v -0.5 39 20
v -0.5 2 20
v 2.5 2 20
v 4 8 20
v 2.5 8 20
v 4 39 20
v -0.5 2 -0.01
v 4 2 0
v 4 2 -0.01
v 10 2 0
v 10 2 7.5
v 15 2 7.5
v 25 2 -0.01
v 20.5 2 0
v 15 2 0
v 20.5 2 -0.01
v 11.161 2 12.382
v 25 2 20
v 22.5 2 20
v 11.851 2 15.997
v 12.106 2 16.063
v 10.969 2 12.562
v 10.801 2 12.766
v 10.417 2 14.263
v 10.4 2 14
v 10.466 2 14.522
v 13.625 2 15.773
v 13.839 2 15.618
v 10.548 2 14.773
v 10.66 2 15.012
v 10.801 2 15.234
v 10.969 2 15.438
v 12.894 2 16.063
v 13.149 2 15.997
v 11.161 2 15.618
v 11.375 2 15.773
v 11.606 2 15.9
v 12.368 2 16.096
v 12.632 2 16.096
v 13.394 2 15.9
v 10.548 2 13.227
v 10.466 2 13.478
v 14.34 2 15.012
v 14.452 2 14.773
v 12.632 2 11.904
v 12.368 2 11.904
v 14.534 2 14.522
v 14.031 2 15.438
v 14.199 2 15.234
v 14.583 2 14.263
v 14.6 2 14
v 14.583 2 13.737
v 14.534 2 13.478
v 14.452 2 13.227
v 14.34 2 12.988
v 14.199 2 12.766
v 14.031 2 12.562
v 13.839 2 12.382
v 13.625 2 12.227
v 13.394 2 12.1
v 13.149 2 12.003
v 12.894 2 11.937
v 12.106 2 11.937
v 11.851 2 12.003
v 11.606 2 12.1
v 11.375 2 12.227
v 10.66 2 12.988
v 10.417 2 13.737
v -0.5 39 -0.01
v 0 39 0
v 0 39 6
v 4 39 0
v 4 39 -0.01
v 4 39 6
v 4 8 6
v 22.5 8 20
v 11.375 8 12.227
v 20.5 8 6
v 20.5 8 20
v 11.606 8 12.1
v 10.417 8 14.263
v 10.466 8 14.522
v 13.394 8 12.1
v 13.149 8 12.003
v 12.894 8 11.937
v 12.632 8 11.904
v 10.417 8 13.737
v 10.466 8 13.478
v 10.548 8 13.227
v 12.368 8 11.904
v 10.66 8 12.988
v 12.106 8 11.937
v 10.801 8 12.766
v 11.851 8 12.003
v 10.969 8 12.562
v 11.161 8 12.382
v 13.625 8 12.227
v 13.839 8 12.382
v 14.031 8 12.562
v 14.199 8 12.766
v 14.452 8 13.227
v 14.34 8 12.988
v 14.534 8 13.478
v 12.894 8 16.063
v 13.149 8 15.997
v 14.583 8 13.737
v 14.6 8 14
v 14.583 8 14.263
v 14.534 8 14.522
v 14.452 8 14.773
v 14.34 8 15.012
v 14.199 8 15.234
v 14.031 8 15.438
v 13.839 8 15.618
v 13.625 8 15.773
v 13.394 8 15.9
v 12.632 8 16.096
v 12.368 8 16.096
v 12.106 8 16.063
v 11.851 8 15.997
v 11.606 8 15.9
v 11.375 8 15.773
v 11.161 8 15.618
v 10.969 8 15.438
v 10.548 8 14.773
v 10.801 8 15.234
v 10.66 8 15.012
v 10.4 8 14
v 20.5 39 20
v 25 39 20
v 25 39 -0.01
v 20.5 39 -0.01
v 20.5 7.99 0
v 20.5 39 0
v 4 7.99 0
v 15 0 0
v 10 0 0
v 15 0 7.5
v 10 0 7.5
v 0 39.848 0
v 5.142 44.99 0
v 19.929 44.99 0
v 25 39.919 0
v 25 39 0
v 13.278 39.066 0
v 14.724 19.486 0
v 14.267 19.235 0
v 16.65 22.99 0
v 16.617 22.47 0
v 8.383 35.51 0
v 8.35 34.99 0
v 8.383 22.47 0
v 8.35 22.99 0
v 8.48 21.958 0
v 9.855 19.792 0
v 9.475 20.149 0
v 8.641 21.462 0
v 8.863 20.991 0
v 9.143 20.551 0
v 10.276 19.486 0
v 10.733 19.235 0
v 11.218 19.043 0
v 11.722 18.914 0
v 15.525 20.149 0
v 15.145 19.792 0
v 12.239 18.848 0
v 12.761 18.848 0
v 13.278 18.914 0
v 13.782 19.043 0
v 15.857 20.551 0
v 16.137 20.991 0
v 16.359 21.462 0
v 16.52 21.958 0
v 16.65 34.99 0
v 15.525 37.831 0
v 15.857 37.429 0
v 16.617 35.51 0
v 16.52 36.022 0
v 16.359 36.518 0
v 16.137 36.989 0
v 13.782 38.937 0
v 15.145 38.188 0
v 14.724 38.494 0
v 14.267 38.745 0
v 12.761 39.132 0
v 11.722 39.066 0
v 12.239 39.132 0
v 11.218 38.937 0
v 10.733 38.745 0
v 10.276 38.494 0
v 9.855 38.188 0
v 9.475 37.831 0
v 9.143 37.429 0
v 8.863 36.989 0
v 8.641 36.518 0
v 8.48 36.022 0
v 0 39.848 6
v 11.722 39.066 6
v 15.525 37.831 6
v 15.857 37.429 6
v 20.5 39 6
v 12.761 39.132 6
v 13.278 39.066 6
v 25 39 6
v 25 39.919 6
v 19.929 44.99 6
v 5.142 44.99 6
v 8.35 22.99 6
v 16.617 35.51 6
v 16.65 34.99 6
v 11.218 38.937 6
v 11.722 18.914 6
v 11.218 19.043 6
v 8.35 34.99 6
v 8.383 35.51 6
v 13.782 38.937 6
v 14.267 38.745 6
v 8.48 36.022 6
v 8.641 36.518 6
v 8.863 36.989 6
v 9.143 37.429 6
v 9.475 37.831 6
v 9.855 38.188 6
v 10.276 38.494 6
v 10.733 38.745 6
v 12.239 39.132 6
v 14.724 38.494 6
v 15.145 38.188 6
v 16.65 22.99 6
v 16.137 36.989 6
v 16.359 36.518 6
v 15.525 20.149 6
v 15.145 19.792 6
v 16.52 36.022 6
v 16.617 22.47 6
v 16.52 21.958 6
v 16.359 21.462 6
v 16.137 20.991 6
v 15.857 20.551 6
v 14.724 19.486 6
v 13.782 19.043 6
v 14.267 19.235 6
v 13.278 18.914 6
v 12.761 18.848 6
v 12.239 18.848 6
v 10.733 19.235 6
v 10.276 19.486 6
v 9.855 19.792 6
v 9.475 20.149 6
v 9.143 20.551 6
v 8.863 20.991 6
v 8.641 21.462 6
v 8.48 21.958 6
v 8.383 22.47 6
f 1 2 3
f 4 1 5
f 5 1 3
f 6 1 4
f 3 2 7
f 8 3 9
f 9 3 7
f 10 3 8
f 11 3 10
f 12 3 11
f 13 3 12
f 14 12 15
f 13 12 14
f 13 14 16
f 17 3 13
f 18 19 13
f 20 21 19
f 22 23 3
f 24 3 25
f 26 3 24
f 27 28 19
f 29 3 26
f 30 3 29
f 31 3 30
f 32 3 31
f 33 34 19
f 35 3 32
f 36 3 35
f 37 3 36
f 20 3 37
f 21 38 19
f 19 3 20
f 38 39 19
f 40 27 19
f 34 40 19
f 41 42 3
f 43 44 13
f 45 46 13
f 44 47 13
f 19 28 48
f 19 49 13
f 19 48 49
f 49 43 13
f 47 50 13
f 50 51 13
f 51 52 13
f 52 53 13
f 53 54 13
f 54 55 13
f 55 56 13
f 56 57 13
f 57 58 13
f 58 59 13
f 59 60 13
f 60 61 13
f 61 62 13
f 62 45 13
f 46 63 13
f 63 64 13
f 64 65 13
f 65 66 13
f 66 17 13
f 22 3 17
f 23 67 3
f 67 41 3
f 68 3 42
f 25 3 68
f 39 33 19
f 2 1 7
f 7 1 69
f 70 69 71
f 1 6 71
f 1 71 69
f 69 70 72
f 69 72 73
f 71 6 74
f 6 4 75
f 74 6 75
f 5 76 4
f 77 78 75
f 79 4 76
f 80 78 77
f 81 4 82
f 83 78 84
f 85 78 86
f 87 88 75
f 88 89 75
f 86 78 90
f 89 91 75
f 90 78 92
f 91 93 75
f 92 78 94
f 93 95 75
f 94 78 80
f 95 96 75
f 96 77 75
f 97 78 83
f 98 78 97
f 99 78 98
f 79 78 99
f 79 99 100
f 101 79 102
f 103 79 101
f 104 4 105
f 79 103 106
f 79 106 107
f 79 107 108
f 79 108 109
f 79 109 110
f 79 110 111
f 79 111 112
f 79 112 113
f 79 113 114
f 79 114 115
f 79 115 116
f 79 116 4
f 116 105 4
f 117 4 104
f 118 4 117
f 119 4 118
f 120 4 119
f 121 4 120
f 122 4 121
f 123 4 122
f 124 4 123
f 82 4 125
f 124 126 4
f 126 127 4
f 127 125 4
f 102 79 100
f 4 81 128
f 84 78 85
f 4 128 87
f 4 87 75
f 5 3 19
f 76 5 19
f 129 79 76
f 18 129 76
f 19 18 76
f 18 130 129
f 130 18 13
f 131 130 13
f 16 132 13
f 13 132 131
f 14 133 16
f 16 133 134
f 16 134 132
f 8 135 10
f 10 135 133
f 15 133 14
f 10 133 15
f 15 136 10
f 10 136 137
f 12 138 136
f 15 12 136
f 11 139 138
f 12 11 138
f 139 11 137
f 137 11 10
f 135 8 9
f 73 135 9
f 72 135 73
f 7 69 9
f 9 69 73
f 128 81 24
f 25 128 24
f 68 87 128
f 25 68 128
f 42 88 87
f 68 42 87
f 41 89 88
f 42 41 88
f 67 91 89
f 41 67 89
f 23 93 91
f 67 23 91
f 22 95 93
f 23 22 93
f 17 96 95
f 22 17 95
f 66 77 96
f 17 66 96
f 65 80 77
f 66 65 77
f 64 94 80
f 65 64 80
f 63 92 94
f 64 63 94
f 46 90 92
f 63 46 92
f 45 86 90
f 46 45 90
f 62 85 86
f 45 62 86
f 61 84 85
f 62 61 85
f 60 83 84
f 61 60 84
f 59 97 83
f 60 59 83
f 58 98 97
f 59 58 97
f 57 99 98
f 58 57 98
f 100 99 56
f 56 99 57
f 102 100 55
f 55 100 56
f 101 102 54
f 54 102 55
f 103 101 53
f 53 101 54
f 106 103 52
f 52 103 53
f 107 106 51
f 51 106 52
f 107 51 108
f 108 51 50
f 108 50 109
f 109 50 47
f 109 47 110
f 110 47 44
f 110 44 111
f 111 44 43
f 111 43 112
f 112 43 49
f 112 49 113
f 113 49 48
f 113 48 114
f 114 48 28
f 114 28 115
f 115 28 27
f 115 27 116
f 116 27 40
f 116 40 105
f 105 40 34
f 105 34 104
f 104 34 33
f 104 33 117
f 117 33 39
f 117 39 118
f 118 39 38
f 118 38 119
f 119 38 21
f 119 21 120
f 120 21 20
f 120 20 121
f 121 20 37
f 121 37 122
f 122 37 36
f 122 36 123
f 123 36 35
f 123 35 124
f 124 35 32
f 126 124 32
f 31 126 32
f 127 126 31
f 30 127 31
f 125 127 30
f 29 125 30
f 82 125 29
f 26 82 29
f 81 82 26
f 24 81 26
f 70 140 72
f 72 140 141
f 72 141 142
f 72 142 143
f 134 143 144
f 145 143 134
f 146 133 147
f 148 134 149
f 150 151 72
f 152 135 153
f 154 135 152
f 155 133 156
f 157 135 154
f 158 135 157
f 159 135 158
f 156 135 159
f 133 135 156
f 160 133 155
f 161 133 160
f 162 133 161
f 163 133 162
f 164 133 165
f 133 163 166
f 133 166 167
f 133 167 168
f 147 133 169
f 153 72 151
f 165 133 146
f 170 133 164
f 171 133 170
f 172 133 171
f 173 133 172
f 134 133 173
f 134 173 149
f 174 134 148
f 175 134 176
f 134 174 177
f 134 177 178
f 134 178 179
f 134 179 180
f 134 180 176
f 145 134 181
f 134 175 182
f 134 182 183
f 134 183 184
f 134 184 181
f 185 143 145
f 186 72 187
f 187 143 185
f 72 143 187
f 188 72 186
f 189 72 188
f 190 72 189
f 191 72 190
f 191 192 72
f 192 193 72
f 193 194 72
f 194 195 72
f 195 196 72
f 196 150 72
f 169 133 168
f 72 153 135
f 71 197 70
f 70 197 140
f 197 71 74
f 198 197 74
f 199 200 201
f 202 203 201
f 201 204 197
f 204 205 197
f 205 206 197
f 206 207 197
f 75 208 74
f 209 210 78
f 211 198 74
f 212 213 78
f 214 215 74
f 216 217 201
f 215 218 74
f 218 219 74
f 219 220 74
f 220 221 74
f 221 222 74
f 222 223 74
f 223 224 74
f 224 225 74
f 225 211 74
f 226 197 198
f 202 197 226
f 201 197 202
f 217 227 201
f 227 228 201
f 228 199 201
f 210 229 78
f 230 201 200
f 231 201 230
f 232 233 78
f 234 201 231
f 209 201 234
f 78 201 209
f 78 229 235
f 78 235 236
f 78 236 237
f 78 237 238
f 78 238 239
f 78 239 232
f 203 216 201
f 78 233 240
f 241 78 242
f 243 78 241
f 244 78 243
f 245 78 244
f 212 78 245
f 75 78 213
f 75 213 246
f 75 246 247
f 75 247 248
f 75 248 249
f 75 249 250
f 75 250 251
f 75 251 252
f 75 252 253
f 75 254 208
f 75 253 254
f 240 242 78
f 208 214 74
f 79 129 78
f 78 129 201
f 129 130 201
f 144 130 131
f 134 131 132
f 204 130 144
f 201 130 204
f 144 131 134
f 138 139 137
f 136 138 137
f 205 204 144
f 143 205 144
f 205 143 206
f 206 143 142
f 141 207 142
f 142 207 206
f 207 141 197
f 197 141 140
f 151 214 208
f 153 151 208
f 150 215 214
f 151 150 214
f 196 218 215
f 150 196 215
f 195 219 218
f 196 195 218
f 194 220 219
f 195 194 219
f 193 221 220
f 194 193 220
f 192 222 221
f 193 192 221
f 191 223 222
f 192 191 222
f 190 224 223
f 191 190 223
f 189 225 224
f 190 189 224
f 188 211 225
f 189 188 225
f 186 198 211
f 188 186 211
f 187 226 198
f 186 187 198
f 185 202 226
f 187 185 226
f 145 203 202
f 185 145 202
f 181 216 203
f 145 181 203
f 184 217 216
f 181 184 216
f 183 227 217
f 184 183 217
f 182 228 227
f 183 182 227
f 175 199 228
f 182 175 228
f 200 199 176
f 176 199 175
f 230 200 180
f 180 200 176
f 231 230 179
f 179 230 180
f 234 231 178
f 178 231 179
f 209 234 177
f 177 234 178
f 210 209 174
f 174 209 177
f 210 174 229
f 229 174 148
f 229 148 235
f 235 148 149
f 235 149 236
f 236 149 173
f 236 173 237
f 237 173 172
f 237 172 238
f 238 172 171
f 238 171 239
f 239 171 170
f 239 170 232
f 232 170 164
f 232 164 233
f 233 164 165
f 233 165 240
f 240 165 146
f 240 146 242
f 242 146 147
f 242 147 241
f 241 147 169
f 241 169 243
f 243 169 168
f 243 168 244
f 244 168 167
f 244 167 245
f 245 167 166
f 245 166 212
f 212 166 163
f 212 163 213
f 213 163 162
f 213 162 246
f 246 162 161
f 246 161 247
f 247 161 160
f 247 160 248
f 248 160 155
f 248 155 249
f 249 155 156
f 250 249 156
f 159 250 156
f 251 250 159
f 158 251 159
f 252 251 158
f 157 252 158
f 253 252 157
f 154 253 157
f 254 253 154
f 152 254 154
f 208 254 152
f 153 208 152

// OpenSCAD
// file: functions.scad
// PRUSA Mendel  
// Functions used in many files
// GNU GPL v2
// Josef Průša
// josefprusa@me.com
// prusadjs.cz
// http://www.reprap.org/wiki/Prusa_Mendel
// http://github.com/prusajr/PrusaMendel

module nut(d,h,horizontal=true){
cornerdiameter =  (d / 2) / cos (180 / 6);
cylinder(h = h, r = cornerdiameter, $fn = 6);
if(horizontal){
for(i = [1:6]){
	rotate([0,0,60*i]) translate([-cornerdiameter-0.2,0,0]) rotate([0,0,-45]) cube(size = [2,2,h]);
}}
}

// By nophead
module polyhole(d,h) {
    n = max(round(2 * d),3);
    rotate([0,0,180])
        cylinder(h = h, r = (d / 2) / cos (180 / n), $fn = n);
}

module roundcorner(diameter){
	difference(){
		cube(size = [diameter,diameter,99], center = false);
		translate(v = [diameter, diameter, 0]) cylinder(h = 100, r=diameter, center=true);
	}
}
// file: metric.scad
// PRUSA Mendel  
// Default metric sizes
// GNU GPL v2
// Josef Průša
// josefprusa@me.com
// prusadjs.cz
// http://www.reprap.org/wiki/Prusa_Mendel
// http://github.com/prusajr/PrusaMendel

// DONT CHANGE THIS FILE! ALTER VALUES IN CONFIGURATION.SCAD INSTEAD

// RODS

threaded_rod_diameter = 8;
threaded_rod_diameter_horizontal = 8;
smooth_bar_diameter = 8;
smooth_bar_diameter_horizontal = 8;

// Nuts and bolts

m8_diameter = 8;
m8_nut_diameter = 14.5;

m4_diameter = 4;
m4_nut_diameter = 7.5;

m3_diameter = 3;
m3_nut_diameter = 5;

// Bushing holder

bushing_core_diameter = smooth_bar_diameter;
bushing_material_thickness = 1;

// Motors

motor_shaft = 5.1;
// file: configuration.scad
// PRUSA Mendel  
// Configuration file
// GNU GPL v2
// Josef Průša
// josefprusa@me.com
// prusadjs.cz
// http://www.reprap.org/wiki/Prusa_Mendel
// http://github.com/prusajr/PrusaMendel

// PLEASE SELECT ONE OF THE CONFIGURATIONS BELOW
// BY UN-COMMENTING IT

// Uncomment for metric settings
// METRIC METRIC METRIC METRIC METRIC METRIC METRIC METRIC 

include <metric.scad>;

// Uncomment for imperial settings
// IMPERIAL IMPERIAL IMPERIAL IMPERIAL IMPERIAL IMPERIAL IMPERIAL 

//include <sae.scad>;

//thin_wall = 3;
// LM8UU
//linear = false;

// override settings by customizing below
// CUSTOM CUSTOM CUSTOM CUSTOM CUSTOM CUSTOM CUSTOM CUSTOM CUSTOM

threaded_rod_diameter = 8.2;
threaded_rod_diameter_horizontal = 8.2;
smooth_bar_diameter = 8.3;
smooth_bar_diameter_horizontal = 8.3;

// Nuts and bolts

m8_diameter = 8.3;
m8_nut_diameter = 15;

m4_diameter = 4.2;
m4_nut_diameter = 9;

m3_diameter = 3.3;
m3_nut_diameter = 5.8;

///counted stuff
m3_nut_diameter_bigger = ((m3_nut_diameter  / 2) / cos (180 / 6))*2;

// functions 
include <functions.scad>
// main file
// f. beachler
// longevity software d.b.a. terawatt industries

include <configuration.scad>;

m1 = m4_diameter; 
m2 = m8_diameter; 
h = 6;   				// base thickness
o = 0.01;					//  overlap amount - fb note used to prevent manifold and reduces total volume
w = 2.5;					// wall thickness
adj_len = 12;			// length of adjustment slot
st = 2;					// slot tab depth 2=normal, -1=none

$fn=50;

yidler(h, w, m1, m2, adj_len, st);
//translate([-5,0,0]) mirror([1,0,0]) yidler(h, w, m1, m2, adj_len, st);

module yidler(yih = h, yiw = w, yim = m1, bim = m2, adj = adj_len, yst = st)
{
	// FIXME move rotation outta here
	translate([22.5, 2, 0]) rotate([90,0,180]) wall(yih, yim, yst, adj);
	translate([0, h+2-o, 0]) base(yih, yiw, bim, adj);
}


module base(bh, bw, bm, adj)
{
	difference() {
		cube([25, 25 + adj, bh]);
		translate([-10, 25 - 1 + adj, -o]) rotate([0,0,-45]) cube([10, 20, bh+2*o]);
		translate([28, 25 - 1 + adj - 10 * cos(45), -o]) rotate([0,0,45]) cube([10, 20, bh+2*o]);
		translate([25 / 2, 15, -0.1]) cylinder(r = bm / 2, h = 9);
		translate([25 / 2, 15 + adj, -o]) cylinder(r = bm / 2, h = 9);
		translate([25 / 2 - bm / 2, 15, -o]) cube([bm, adj, bh * 2]);
	}
}


module wall(whh, wm, wst, adj)
{
	difference()
	{
		cube([20, 20, whh]);
		translate([10, 14, -o]) cylinder(r = wm/2, h = 9);
	}
	// side walls
	translate([-2.5, -o, 0]) cube([whh - 1.5, 20 + o, 25 + adj]);
	translate([25 / 2 + 6, -o, 0]) cube([whh - 1.5, 20 + o, 25 + adj]);
	// extrusion tab
	translate([7.5, 0, -wst]) cube([5, 7.5, wst + o]);

}
